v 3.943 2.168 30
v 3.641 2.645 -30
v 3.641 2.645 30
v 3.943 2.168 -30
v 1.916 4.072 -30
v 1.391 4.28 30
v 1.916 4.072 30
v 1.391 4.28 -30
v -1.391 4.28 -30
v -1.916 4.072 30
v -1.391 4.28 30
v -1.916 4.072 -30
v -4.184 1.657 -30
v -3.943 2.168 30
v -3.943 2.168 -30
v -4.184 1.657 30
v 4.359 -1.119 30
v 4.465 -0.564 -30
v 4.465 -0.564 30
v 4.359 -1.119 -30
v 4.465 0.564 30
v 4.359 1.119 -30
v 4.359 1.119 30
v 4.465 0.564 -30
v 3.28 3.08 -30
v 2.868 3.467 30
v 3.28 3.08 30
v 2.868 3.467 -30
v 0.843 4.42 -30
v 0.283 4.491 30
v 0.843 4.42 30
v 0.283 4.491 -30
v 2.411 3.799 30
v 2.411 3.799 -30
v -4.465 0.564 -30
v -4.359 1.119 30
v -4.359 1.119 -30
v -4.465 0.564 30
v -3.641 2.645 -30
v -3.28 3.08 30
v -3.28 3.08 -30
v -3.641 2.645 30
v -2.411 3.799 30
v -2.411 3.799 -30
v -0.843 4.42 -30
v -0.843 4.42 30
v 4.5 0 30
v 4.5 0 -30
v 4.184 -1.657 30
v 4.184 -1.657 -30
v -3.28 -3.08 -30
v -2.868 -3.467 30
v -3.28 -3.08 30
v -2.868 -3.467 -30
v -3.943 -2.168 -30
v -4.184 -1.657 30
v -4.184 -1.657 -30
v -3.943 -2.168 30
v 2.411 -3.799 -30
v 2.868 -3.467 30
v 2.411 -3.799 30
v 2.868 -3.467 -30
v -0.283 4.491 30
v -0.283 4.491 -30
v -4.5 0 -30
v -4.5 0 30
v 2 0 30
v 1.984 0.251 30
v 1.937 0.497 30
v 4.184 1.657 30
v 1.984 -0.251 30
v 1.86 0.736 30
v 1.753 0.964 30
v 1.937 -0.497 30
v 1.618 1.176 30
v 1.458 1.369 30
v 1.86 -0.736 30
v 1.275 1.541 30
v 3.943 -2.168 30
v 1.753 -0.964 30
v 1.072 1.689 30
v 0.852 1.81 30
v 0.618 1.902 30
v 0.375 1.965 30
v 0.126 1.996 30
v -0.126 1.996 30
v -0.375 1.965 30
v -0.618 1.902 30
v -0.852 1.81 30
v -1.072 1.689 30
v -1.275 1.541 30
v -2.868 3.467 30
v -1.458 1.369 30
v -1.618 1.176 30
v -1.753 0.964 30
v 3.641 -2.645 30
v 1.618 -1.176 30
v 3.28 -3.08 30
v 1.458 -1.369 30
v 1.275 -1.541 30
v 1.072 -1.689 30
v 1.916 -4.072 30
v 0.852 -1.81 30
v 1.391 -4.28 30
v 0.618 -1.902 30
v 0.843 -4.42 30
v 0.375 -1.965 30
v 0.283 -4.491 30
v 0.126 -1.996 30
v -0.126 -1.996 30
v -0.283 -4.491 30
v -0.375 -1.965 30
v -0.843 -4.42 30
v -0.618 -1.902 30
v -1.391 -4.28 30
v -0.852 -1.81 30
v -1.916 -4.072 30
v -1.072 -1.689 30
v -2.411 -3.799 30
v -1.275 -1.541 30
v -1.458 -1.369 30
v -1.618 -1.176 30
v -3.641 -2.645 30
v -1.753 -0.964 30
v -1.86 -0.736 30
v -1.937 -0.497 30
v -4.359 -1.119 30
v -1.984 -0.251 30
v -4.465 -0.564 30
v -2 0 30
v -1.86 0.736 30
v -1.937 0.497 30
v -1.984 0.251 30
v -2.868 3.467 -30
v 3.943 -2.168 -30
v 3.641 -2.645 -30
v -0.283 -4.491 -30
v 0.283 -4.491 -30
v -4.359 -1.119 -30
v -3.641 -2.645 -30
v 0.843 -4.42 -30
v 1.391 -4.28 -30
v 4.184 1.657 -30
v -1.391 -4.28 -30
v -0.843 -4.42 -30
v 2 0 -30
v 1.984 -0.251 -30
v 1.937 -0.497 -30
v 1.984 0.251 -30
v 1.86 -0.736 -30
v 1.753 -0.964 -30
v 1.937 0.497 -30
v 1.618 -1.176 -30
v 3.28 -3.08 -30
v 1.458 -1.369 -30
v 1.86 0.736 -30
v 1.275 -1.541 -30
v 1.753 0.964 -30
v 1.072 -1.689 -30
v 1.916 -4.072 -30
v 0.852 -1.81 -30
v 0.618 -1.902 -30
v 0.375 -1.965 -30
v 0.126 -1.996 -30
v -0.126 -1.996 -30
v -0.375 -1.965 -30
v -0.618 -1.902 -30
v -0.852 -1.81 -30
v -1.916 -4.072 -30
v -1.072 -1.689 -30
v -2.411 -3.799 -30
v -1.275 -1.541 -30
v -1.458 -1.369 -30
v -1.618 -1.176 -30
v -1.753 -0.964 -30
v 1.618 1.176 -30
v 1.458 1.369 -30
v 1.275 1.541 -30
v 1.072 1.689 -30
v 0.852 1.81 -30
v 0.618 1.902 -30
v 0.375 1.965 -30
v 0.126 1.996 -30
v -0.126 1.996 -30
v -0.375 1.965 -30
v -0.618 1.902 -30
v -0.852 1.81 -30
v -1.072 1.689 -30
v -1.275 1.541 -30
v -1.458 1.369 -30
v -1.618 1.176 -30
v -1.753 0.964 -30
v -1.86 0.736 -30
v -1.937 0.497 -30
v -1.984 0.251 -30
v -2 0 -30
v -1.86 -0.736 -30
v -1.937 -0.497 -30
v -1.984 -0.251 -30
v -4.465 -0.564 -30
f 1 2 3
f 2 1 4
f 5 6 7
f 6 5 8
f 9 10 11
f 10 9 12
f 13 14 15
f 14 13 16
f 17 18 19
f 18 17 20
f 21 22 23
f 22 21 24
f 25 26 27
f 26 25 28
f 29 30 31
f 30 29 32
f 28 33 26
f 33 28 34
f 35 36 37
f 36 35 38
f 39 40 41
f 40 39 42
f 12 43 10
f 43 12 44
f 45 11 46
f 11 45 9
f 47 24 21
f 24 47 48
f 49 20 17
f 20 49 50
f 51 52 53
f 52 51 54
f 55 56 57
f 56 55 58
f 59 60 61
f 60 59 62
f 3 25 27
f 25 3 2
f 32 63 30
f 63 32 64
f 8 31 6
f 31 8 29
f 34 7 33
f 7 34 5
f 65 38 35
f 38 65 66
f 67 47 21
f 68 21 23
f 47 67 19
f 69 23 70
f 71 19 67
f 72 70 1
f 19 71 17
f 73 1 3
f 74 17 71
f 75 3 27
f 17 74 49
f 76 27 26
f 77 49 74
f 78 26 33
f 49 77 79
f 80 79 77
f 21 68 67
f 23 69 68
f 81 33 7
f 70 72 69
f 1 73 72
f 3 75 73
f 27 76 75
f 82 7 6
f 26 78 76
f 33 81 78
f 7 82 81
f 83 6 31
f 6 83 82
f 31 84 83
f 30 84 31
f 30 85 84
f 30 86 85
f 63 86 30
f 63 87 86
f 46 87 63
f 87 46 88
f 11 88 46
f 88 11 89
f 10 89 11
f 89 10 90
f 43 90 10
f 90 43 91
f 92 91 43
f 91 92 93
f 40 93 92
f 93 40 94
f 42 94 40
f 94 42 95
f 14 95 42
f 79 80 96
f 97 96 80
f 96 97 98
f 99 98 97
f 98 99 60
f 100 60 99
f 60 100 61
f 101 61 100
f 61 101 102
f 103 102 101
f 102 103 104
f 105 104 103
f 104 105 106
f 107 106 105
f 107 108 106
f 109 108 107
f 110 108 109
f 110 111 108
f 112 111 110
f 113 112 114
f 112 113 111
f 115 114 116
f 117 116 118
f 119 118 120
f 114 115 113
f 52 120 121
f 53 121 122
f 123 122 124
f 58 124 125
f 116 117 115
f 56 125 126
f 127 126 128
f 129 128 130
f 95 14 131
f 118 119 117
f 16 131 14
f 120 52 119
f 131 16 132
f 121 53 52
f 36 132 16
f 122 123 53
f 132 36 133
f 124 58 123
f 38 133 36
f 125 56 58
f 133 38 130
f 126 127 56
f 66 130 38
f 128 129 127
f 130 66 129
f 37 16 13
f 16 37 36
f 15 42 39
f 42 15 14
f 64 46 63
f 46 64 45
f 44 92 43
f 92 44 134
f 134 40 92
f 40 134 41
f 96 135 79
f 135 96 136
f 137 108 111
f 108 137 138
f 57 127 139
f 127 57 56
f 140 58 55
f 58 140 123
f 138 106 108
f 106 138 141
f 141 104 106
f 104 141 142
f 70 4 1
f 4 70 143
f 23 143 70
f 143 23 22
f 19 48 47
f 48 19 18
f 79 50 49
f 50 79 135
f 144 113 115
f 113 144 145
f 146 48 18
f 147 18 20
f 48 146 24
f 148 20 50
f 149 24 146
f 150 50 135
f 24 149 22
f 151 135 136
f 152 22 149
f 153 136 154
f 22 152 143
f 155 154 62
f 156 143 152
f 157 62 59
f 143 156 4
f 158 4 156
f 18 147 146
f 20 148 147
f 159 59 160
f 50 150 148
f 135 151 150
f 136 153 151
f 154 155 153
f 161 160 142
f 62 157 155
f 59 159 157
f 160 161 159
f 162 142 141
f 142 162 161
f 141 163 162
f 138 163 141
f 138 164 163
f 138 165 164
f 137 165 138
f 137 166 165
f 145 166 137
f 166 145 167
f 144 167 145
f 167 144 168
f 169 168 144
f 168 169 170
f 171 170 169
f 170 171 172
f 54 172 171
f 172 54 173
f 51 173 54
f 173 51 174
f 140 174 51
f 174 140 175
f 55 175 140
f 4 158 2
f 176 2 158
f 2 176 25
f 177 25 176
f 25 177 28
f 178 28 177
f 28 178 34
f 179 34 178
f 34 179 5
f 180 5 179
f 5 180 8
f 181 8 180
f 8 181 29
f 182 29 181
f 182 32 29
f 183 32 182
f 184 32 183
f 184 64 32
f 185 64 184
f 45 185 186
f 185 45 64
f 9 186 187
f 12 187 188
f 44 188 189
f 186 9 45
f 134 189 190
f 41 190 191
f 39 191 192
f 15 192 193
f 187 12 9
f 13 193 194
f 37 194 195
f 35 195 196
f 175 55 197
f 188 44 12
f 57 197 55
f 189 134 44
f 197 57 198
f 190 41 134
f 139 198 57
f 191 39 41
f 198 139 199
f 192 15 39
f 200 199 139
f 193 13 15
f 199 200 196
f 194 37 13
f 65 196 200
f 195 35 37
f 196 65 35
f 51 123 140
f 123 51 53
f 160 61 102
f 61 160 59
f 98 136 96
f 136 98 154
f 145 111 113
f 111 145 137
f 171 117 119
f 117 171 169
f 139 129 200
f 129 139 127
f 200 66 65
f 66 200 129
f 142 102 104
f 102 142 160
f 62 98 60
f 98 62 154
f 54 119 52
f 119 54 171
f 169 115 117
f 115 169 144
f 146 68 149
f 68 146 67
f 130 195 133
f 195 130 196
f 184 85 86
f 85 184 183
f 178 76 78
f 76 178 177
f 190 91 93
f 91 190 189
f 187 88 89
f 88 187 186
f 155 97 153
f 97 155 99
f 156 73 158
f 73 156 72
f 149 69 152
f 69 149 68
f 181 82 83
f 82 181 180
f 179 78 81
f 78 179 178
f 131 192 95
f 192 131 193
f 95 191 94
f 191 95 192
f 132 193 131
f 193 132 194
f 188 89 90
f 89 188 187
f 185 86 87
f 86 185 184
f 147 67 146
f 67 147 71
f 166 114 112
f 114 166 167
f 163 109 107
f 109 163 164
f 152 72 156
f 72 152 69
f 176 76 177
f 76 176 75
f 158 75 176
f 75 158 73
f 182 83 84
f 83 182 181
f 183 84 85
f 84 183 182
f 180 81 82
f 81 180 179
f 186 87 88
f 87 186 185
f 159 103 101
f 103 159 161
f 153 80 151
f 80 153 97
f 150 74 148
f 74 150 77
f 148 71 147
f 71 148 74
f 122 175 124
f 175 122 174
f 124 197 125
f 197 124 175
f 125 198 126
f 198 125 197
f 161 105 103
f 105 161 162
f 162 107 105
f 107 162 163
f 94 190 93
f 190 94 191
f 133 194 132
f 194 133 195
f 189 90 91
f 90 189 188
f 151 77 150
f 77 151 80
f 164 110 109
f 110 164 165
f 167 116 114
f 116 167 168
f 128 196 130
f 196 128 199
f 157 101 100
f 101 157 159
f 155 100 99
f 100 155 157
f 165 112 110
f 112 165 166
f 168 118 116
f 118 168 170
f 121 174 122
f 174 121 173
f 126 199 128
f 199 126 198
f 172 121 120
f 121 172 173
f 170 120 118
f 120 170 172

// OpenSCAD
$fn = 50;


difference() {
	union() {
		translate(v = [0, 0, -30.0000000000]) {
			cylinder(h = 60, r = 4.5000000000);
		}
	}
	union() {
		translate(v = [0, 0, -100.0000000000]) {
			cylinder(h = 200, r = 2);
		}
	}
}
